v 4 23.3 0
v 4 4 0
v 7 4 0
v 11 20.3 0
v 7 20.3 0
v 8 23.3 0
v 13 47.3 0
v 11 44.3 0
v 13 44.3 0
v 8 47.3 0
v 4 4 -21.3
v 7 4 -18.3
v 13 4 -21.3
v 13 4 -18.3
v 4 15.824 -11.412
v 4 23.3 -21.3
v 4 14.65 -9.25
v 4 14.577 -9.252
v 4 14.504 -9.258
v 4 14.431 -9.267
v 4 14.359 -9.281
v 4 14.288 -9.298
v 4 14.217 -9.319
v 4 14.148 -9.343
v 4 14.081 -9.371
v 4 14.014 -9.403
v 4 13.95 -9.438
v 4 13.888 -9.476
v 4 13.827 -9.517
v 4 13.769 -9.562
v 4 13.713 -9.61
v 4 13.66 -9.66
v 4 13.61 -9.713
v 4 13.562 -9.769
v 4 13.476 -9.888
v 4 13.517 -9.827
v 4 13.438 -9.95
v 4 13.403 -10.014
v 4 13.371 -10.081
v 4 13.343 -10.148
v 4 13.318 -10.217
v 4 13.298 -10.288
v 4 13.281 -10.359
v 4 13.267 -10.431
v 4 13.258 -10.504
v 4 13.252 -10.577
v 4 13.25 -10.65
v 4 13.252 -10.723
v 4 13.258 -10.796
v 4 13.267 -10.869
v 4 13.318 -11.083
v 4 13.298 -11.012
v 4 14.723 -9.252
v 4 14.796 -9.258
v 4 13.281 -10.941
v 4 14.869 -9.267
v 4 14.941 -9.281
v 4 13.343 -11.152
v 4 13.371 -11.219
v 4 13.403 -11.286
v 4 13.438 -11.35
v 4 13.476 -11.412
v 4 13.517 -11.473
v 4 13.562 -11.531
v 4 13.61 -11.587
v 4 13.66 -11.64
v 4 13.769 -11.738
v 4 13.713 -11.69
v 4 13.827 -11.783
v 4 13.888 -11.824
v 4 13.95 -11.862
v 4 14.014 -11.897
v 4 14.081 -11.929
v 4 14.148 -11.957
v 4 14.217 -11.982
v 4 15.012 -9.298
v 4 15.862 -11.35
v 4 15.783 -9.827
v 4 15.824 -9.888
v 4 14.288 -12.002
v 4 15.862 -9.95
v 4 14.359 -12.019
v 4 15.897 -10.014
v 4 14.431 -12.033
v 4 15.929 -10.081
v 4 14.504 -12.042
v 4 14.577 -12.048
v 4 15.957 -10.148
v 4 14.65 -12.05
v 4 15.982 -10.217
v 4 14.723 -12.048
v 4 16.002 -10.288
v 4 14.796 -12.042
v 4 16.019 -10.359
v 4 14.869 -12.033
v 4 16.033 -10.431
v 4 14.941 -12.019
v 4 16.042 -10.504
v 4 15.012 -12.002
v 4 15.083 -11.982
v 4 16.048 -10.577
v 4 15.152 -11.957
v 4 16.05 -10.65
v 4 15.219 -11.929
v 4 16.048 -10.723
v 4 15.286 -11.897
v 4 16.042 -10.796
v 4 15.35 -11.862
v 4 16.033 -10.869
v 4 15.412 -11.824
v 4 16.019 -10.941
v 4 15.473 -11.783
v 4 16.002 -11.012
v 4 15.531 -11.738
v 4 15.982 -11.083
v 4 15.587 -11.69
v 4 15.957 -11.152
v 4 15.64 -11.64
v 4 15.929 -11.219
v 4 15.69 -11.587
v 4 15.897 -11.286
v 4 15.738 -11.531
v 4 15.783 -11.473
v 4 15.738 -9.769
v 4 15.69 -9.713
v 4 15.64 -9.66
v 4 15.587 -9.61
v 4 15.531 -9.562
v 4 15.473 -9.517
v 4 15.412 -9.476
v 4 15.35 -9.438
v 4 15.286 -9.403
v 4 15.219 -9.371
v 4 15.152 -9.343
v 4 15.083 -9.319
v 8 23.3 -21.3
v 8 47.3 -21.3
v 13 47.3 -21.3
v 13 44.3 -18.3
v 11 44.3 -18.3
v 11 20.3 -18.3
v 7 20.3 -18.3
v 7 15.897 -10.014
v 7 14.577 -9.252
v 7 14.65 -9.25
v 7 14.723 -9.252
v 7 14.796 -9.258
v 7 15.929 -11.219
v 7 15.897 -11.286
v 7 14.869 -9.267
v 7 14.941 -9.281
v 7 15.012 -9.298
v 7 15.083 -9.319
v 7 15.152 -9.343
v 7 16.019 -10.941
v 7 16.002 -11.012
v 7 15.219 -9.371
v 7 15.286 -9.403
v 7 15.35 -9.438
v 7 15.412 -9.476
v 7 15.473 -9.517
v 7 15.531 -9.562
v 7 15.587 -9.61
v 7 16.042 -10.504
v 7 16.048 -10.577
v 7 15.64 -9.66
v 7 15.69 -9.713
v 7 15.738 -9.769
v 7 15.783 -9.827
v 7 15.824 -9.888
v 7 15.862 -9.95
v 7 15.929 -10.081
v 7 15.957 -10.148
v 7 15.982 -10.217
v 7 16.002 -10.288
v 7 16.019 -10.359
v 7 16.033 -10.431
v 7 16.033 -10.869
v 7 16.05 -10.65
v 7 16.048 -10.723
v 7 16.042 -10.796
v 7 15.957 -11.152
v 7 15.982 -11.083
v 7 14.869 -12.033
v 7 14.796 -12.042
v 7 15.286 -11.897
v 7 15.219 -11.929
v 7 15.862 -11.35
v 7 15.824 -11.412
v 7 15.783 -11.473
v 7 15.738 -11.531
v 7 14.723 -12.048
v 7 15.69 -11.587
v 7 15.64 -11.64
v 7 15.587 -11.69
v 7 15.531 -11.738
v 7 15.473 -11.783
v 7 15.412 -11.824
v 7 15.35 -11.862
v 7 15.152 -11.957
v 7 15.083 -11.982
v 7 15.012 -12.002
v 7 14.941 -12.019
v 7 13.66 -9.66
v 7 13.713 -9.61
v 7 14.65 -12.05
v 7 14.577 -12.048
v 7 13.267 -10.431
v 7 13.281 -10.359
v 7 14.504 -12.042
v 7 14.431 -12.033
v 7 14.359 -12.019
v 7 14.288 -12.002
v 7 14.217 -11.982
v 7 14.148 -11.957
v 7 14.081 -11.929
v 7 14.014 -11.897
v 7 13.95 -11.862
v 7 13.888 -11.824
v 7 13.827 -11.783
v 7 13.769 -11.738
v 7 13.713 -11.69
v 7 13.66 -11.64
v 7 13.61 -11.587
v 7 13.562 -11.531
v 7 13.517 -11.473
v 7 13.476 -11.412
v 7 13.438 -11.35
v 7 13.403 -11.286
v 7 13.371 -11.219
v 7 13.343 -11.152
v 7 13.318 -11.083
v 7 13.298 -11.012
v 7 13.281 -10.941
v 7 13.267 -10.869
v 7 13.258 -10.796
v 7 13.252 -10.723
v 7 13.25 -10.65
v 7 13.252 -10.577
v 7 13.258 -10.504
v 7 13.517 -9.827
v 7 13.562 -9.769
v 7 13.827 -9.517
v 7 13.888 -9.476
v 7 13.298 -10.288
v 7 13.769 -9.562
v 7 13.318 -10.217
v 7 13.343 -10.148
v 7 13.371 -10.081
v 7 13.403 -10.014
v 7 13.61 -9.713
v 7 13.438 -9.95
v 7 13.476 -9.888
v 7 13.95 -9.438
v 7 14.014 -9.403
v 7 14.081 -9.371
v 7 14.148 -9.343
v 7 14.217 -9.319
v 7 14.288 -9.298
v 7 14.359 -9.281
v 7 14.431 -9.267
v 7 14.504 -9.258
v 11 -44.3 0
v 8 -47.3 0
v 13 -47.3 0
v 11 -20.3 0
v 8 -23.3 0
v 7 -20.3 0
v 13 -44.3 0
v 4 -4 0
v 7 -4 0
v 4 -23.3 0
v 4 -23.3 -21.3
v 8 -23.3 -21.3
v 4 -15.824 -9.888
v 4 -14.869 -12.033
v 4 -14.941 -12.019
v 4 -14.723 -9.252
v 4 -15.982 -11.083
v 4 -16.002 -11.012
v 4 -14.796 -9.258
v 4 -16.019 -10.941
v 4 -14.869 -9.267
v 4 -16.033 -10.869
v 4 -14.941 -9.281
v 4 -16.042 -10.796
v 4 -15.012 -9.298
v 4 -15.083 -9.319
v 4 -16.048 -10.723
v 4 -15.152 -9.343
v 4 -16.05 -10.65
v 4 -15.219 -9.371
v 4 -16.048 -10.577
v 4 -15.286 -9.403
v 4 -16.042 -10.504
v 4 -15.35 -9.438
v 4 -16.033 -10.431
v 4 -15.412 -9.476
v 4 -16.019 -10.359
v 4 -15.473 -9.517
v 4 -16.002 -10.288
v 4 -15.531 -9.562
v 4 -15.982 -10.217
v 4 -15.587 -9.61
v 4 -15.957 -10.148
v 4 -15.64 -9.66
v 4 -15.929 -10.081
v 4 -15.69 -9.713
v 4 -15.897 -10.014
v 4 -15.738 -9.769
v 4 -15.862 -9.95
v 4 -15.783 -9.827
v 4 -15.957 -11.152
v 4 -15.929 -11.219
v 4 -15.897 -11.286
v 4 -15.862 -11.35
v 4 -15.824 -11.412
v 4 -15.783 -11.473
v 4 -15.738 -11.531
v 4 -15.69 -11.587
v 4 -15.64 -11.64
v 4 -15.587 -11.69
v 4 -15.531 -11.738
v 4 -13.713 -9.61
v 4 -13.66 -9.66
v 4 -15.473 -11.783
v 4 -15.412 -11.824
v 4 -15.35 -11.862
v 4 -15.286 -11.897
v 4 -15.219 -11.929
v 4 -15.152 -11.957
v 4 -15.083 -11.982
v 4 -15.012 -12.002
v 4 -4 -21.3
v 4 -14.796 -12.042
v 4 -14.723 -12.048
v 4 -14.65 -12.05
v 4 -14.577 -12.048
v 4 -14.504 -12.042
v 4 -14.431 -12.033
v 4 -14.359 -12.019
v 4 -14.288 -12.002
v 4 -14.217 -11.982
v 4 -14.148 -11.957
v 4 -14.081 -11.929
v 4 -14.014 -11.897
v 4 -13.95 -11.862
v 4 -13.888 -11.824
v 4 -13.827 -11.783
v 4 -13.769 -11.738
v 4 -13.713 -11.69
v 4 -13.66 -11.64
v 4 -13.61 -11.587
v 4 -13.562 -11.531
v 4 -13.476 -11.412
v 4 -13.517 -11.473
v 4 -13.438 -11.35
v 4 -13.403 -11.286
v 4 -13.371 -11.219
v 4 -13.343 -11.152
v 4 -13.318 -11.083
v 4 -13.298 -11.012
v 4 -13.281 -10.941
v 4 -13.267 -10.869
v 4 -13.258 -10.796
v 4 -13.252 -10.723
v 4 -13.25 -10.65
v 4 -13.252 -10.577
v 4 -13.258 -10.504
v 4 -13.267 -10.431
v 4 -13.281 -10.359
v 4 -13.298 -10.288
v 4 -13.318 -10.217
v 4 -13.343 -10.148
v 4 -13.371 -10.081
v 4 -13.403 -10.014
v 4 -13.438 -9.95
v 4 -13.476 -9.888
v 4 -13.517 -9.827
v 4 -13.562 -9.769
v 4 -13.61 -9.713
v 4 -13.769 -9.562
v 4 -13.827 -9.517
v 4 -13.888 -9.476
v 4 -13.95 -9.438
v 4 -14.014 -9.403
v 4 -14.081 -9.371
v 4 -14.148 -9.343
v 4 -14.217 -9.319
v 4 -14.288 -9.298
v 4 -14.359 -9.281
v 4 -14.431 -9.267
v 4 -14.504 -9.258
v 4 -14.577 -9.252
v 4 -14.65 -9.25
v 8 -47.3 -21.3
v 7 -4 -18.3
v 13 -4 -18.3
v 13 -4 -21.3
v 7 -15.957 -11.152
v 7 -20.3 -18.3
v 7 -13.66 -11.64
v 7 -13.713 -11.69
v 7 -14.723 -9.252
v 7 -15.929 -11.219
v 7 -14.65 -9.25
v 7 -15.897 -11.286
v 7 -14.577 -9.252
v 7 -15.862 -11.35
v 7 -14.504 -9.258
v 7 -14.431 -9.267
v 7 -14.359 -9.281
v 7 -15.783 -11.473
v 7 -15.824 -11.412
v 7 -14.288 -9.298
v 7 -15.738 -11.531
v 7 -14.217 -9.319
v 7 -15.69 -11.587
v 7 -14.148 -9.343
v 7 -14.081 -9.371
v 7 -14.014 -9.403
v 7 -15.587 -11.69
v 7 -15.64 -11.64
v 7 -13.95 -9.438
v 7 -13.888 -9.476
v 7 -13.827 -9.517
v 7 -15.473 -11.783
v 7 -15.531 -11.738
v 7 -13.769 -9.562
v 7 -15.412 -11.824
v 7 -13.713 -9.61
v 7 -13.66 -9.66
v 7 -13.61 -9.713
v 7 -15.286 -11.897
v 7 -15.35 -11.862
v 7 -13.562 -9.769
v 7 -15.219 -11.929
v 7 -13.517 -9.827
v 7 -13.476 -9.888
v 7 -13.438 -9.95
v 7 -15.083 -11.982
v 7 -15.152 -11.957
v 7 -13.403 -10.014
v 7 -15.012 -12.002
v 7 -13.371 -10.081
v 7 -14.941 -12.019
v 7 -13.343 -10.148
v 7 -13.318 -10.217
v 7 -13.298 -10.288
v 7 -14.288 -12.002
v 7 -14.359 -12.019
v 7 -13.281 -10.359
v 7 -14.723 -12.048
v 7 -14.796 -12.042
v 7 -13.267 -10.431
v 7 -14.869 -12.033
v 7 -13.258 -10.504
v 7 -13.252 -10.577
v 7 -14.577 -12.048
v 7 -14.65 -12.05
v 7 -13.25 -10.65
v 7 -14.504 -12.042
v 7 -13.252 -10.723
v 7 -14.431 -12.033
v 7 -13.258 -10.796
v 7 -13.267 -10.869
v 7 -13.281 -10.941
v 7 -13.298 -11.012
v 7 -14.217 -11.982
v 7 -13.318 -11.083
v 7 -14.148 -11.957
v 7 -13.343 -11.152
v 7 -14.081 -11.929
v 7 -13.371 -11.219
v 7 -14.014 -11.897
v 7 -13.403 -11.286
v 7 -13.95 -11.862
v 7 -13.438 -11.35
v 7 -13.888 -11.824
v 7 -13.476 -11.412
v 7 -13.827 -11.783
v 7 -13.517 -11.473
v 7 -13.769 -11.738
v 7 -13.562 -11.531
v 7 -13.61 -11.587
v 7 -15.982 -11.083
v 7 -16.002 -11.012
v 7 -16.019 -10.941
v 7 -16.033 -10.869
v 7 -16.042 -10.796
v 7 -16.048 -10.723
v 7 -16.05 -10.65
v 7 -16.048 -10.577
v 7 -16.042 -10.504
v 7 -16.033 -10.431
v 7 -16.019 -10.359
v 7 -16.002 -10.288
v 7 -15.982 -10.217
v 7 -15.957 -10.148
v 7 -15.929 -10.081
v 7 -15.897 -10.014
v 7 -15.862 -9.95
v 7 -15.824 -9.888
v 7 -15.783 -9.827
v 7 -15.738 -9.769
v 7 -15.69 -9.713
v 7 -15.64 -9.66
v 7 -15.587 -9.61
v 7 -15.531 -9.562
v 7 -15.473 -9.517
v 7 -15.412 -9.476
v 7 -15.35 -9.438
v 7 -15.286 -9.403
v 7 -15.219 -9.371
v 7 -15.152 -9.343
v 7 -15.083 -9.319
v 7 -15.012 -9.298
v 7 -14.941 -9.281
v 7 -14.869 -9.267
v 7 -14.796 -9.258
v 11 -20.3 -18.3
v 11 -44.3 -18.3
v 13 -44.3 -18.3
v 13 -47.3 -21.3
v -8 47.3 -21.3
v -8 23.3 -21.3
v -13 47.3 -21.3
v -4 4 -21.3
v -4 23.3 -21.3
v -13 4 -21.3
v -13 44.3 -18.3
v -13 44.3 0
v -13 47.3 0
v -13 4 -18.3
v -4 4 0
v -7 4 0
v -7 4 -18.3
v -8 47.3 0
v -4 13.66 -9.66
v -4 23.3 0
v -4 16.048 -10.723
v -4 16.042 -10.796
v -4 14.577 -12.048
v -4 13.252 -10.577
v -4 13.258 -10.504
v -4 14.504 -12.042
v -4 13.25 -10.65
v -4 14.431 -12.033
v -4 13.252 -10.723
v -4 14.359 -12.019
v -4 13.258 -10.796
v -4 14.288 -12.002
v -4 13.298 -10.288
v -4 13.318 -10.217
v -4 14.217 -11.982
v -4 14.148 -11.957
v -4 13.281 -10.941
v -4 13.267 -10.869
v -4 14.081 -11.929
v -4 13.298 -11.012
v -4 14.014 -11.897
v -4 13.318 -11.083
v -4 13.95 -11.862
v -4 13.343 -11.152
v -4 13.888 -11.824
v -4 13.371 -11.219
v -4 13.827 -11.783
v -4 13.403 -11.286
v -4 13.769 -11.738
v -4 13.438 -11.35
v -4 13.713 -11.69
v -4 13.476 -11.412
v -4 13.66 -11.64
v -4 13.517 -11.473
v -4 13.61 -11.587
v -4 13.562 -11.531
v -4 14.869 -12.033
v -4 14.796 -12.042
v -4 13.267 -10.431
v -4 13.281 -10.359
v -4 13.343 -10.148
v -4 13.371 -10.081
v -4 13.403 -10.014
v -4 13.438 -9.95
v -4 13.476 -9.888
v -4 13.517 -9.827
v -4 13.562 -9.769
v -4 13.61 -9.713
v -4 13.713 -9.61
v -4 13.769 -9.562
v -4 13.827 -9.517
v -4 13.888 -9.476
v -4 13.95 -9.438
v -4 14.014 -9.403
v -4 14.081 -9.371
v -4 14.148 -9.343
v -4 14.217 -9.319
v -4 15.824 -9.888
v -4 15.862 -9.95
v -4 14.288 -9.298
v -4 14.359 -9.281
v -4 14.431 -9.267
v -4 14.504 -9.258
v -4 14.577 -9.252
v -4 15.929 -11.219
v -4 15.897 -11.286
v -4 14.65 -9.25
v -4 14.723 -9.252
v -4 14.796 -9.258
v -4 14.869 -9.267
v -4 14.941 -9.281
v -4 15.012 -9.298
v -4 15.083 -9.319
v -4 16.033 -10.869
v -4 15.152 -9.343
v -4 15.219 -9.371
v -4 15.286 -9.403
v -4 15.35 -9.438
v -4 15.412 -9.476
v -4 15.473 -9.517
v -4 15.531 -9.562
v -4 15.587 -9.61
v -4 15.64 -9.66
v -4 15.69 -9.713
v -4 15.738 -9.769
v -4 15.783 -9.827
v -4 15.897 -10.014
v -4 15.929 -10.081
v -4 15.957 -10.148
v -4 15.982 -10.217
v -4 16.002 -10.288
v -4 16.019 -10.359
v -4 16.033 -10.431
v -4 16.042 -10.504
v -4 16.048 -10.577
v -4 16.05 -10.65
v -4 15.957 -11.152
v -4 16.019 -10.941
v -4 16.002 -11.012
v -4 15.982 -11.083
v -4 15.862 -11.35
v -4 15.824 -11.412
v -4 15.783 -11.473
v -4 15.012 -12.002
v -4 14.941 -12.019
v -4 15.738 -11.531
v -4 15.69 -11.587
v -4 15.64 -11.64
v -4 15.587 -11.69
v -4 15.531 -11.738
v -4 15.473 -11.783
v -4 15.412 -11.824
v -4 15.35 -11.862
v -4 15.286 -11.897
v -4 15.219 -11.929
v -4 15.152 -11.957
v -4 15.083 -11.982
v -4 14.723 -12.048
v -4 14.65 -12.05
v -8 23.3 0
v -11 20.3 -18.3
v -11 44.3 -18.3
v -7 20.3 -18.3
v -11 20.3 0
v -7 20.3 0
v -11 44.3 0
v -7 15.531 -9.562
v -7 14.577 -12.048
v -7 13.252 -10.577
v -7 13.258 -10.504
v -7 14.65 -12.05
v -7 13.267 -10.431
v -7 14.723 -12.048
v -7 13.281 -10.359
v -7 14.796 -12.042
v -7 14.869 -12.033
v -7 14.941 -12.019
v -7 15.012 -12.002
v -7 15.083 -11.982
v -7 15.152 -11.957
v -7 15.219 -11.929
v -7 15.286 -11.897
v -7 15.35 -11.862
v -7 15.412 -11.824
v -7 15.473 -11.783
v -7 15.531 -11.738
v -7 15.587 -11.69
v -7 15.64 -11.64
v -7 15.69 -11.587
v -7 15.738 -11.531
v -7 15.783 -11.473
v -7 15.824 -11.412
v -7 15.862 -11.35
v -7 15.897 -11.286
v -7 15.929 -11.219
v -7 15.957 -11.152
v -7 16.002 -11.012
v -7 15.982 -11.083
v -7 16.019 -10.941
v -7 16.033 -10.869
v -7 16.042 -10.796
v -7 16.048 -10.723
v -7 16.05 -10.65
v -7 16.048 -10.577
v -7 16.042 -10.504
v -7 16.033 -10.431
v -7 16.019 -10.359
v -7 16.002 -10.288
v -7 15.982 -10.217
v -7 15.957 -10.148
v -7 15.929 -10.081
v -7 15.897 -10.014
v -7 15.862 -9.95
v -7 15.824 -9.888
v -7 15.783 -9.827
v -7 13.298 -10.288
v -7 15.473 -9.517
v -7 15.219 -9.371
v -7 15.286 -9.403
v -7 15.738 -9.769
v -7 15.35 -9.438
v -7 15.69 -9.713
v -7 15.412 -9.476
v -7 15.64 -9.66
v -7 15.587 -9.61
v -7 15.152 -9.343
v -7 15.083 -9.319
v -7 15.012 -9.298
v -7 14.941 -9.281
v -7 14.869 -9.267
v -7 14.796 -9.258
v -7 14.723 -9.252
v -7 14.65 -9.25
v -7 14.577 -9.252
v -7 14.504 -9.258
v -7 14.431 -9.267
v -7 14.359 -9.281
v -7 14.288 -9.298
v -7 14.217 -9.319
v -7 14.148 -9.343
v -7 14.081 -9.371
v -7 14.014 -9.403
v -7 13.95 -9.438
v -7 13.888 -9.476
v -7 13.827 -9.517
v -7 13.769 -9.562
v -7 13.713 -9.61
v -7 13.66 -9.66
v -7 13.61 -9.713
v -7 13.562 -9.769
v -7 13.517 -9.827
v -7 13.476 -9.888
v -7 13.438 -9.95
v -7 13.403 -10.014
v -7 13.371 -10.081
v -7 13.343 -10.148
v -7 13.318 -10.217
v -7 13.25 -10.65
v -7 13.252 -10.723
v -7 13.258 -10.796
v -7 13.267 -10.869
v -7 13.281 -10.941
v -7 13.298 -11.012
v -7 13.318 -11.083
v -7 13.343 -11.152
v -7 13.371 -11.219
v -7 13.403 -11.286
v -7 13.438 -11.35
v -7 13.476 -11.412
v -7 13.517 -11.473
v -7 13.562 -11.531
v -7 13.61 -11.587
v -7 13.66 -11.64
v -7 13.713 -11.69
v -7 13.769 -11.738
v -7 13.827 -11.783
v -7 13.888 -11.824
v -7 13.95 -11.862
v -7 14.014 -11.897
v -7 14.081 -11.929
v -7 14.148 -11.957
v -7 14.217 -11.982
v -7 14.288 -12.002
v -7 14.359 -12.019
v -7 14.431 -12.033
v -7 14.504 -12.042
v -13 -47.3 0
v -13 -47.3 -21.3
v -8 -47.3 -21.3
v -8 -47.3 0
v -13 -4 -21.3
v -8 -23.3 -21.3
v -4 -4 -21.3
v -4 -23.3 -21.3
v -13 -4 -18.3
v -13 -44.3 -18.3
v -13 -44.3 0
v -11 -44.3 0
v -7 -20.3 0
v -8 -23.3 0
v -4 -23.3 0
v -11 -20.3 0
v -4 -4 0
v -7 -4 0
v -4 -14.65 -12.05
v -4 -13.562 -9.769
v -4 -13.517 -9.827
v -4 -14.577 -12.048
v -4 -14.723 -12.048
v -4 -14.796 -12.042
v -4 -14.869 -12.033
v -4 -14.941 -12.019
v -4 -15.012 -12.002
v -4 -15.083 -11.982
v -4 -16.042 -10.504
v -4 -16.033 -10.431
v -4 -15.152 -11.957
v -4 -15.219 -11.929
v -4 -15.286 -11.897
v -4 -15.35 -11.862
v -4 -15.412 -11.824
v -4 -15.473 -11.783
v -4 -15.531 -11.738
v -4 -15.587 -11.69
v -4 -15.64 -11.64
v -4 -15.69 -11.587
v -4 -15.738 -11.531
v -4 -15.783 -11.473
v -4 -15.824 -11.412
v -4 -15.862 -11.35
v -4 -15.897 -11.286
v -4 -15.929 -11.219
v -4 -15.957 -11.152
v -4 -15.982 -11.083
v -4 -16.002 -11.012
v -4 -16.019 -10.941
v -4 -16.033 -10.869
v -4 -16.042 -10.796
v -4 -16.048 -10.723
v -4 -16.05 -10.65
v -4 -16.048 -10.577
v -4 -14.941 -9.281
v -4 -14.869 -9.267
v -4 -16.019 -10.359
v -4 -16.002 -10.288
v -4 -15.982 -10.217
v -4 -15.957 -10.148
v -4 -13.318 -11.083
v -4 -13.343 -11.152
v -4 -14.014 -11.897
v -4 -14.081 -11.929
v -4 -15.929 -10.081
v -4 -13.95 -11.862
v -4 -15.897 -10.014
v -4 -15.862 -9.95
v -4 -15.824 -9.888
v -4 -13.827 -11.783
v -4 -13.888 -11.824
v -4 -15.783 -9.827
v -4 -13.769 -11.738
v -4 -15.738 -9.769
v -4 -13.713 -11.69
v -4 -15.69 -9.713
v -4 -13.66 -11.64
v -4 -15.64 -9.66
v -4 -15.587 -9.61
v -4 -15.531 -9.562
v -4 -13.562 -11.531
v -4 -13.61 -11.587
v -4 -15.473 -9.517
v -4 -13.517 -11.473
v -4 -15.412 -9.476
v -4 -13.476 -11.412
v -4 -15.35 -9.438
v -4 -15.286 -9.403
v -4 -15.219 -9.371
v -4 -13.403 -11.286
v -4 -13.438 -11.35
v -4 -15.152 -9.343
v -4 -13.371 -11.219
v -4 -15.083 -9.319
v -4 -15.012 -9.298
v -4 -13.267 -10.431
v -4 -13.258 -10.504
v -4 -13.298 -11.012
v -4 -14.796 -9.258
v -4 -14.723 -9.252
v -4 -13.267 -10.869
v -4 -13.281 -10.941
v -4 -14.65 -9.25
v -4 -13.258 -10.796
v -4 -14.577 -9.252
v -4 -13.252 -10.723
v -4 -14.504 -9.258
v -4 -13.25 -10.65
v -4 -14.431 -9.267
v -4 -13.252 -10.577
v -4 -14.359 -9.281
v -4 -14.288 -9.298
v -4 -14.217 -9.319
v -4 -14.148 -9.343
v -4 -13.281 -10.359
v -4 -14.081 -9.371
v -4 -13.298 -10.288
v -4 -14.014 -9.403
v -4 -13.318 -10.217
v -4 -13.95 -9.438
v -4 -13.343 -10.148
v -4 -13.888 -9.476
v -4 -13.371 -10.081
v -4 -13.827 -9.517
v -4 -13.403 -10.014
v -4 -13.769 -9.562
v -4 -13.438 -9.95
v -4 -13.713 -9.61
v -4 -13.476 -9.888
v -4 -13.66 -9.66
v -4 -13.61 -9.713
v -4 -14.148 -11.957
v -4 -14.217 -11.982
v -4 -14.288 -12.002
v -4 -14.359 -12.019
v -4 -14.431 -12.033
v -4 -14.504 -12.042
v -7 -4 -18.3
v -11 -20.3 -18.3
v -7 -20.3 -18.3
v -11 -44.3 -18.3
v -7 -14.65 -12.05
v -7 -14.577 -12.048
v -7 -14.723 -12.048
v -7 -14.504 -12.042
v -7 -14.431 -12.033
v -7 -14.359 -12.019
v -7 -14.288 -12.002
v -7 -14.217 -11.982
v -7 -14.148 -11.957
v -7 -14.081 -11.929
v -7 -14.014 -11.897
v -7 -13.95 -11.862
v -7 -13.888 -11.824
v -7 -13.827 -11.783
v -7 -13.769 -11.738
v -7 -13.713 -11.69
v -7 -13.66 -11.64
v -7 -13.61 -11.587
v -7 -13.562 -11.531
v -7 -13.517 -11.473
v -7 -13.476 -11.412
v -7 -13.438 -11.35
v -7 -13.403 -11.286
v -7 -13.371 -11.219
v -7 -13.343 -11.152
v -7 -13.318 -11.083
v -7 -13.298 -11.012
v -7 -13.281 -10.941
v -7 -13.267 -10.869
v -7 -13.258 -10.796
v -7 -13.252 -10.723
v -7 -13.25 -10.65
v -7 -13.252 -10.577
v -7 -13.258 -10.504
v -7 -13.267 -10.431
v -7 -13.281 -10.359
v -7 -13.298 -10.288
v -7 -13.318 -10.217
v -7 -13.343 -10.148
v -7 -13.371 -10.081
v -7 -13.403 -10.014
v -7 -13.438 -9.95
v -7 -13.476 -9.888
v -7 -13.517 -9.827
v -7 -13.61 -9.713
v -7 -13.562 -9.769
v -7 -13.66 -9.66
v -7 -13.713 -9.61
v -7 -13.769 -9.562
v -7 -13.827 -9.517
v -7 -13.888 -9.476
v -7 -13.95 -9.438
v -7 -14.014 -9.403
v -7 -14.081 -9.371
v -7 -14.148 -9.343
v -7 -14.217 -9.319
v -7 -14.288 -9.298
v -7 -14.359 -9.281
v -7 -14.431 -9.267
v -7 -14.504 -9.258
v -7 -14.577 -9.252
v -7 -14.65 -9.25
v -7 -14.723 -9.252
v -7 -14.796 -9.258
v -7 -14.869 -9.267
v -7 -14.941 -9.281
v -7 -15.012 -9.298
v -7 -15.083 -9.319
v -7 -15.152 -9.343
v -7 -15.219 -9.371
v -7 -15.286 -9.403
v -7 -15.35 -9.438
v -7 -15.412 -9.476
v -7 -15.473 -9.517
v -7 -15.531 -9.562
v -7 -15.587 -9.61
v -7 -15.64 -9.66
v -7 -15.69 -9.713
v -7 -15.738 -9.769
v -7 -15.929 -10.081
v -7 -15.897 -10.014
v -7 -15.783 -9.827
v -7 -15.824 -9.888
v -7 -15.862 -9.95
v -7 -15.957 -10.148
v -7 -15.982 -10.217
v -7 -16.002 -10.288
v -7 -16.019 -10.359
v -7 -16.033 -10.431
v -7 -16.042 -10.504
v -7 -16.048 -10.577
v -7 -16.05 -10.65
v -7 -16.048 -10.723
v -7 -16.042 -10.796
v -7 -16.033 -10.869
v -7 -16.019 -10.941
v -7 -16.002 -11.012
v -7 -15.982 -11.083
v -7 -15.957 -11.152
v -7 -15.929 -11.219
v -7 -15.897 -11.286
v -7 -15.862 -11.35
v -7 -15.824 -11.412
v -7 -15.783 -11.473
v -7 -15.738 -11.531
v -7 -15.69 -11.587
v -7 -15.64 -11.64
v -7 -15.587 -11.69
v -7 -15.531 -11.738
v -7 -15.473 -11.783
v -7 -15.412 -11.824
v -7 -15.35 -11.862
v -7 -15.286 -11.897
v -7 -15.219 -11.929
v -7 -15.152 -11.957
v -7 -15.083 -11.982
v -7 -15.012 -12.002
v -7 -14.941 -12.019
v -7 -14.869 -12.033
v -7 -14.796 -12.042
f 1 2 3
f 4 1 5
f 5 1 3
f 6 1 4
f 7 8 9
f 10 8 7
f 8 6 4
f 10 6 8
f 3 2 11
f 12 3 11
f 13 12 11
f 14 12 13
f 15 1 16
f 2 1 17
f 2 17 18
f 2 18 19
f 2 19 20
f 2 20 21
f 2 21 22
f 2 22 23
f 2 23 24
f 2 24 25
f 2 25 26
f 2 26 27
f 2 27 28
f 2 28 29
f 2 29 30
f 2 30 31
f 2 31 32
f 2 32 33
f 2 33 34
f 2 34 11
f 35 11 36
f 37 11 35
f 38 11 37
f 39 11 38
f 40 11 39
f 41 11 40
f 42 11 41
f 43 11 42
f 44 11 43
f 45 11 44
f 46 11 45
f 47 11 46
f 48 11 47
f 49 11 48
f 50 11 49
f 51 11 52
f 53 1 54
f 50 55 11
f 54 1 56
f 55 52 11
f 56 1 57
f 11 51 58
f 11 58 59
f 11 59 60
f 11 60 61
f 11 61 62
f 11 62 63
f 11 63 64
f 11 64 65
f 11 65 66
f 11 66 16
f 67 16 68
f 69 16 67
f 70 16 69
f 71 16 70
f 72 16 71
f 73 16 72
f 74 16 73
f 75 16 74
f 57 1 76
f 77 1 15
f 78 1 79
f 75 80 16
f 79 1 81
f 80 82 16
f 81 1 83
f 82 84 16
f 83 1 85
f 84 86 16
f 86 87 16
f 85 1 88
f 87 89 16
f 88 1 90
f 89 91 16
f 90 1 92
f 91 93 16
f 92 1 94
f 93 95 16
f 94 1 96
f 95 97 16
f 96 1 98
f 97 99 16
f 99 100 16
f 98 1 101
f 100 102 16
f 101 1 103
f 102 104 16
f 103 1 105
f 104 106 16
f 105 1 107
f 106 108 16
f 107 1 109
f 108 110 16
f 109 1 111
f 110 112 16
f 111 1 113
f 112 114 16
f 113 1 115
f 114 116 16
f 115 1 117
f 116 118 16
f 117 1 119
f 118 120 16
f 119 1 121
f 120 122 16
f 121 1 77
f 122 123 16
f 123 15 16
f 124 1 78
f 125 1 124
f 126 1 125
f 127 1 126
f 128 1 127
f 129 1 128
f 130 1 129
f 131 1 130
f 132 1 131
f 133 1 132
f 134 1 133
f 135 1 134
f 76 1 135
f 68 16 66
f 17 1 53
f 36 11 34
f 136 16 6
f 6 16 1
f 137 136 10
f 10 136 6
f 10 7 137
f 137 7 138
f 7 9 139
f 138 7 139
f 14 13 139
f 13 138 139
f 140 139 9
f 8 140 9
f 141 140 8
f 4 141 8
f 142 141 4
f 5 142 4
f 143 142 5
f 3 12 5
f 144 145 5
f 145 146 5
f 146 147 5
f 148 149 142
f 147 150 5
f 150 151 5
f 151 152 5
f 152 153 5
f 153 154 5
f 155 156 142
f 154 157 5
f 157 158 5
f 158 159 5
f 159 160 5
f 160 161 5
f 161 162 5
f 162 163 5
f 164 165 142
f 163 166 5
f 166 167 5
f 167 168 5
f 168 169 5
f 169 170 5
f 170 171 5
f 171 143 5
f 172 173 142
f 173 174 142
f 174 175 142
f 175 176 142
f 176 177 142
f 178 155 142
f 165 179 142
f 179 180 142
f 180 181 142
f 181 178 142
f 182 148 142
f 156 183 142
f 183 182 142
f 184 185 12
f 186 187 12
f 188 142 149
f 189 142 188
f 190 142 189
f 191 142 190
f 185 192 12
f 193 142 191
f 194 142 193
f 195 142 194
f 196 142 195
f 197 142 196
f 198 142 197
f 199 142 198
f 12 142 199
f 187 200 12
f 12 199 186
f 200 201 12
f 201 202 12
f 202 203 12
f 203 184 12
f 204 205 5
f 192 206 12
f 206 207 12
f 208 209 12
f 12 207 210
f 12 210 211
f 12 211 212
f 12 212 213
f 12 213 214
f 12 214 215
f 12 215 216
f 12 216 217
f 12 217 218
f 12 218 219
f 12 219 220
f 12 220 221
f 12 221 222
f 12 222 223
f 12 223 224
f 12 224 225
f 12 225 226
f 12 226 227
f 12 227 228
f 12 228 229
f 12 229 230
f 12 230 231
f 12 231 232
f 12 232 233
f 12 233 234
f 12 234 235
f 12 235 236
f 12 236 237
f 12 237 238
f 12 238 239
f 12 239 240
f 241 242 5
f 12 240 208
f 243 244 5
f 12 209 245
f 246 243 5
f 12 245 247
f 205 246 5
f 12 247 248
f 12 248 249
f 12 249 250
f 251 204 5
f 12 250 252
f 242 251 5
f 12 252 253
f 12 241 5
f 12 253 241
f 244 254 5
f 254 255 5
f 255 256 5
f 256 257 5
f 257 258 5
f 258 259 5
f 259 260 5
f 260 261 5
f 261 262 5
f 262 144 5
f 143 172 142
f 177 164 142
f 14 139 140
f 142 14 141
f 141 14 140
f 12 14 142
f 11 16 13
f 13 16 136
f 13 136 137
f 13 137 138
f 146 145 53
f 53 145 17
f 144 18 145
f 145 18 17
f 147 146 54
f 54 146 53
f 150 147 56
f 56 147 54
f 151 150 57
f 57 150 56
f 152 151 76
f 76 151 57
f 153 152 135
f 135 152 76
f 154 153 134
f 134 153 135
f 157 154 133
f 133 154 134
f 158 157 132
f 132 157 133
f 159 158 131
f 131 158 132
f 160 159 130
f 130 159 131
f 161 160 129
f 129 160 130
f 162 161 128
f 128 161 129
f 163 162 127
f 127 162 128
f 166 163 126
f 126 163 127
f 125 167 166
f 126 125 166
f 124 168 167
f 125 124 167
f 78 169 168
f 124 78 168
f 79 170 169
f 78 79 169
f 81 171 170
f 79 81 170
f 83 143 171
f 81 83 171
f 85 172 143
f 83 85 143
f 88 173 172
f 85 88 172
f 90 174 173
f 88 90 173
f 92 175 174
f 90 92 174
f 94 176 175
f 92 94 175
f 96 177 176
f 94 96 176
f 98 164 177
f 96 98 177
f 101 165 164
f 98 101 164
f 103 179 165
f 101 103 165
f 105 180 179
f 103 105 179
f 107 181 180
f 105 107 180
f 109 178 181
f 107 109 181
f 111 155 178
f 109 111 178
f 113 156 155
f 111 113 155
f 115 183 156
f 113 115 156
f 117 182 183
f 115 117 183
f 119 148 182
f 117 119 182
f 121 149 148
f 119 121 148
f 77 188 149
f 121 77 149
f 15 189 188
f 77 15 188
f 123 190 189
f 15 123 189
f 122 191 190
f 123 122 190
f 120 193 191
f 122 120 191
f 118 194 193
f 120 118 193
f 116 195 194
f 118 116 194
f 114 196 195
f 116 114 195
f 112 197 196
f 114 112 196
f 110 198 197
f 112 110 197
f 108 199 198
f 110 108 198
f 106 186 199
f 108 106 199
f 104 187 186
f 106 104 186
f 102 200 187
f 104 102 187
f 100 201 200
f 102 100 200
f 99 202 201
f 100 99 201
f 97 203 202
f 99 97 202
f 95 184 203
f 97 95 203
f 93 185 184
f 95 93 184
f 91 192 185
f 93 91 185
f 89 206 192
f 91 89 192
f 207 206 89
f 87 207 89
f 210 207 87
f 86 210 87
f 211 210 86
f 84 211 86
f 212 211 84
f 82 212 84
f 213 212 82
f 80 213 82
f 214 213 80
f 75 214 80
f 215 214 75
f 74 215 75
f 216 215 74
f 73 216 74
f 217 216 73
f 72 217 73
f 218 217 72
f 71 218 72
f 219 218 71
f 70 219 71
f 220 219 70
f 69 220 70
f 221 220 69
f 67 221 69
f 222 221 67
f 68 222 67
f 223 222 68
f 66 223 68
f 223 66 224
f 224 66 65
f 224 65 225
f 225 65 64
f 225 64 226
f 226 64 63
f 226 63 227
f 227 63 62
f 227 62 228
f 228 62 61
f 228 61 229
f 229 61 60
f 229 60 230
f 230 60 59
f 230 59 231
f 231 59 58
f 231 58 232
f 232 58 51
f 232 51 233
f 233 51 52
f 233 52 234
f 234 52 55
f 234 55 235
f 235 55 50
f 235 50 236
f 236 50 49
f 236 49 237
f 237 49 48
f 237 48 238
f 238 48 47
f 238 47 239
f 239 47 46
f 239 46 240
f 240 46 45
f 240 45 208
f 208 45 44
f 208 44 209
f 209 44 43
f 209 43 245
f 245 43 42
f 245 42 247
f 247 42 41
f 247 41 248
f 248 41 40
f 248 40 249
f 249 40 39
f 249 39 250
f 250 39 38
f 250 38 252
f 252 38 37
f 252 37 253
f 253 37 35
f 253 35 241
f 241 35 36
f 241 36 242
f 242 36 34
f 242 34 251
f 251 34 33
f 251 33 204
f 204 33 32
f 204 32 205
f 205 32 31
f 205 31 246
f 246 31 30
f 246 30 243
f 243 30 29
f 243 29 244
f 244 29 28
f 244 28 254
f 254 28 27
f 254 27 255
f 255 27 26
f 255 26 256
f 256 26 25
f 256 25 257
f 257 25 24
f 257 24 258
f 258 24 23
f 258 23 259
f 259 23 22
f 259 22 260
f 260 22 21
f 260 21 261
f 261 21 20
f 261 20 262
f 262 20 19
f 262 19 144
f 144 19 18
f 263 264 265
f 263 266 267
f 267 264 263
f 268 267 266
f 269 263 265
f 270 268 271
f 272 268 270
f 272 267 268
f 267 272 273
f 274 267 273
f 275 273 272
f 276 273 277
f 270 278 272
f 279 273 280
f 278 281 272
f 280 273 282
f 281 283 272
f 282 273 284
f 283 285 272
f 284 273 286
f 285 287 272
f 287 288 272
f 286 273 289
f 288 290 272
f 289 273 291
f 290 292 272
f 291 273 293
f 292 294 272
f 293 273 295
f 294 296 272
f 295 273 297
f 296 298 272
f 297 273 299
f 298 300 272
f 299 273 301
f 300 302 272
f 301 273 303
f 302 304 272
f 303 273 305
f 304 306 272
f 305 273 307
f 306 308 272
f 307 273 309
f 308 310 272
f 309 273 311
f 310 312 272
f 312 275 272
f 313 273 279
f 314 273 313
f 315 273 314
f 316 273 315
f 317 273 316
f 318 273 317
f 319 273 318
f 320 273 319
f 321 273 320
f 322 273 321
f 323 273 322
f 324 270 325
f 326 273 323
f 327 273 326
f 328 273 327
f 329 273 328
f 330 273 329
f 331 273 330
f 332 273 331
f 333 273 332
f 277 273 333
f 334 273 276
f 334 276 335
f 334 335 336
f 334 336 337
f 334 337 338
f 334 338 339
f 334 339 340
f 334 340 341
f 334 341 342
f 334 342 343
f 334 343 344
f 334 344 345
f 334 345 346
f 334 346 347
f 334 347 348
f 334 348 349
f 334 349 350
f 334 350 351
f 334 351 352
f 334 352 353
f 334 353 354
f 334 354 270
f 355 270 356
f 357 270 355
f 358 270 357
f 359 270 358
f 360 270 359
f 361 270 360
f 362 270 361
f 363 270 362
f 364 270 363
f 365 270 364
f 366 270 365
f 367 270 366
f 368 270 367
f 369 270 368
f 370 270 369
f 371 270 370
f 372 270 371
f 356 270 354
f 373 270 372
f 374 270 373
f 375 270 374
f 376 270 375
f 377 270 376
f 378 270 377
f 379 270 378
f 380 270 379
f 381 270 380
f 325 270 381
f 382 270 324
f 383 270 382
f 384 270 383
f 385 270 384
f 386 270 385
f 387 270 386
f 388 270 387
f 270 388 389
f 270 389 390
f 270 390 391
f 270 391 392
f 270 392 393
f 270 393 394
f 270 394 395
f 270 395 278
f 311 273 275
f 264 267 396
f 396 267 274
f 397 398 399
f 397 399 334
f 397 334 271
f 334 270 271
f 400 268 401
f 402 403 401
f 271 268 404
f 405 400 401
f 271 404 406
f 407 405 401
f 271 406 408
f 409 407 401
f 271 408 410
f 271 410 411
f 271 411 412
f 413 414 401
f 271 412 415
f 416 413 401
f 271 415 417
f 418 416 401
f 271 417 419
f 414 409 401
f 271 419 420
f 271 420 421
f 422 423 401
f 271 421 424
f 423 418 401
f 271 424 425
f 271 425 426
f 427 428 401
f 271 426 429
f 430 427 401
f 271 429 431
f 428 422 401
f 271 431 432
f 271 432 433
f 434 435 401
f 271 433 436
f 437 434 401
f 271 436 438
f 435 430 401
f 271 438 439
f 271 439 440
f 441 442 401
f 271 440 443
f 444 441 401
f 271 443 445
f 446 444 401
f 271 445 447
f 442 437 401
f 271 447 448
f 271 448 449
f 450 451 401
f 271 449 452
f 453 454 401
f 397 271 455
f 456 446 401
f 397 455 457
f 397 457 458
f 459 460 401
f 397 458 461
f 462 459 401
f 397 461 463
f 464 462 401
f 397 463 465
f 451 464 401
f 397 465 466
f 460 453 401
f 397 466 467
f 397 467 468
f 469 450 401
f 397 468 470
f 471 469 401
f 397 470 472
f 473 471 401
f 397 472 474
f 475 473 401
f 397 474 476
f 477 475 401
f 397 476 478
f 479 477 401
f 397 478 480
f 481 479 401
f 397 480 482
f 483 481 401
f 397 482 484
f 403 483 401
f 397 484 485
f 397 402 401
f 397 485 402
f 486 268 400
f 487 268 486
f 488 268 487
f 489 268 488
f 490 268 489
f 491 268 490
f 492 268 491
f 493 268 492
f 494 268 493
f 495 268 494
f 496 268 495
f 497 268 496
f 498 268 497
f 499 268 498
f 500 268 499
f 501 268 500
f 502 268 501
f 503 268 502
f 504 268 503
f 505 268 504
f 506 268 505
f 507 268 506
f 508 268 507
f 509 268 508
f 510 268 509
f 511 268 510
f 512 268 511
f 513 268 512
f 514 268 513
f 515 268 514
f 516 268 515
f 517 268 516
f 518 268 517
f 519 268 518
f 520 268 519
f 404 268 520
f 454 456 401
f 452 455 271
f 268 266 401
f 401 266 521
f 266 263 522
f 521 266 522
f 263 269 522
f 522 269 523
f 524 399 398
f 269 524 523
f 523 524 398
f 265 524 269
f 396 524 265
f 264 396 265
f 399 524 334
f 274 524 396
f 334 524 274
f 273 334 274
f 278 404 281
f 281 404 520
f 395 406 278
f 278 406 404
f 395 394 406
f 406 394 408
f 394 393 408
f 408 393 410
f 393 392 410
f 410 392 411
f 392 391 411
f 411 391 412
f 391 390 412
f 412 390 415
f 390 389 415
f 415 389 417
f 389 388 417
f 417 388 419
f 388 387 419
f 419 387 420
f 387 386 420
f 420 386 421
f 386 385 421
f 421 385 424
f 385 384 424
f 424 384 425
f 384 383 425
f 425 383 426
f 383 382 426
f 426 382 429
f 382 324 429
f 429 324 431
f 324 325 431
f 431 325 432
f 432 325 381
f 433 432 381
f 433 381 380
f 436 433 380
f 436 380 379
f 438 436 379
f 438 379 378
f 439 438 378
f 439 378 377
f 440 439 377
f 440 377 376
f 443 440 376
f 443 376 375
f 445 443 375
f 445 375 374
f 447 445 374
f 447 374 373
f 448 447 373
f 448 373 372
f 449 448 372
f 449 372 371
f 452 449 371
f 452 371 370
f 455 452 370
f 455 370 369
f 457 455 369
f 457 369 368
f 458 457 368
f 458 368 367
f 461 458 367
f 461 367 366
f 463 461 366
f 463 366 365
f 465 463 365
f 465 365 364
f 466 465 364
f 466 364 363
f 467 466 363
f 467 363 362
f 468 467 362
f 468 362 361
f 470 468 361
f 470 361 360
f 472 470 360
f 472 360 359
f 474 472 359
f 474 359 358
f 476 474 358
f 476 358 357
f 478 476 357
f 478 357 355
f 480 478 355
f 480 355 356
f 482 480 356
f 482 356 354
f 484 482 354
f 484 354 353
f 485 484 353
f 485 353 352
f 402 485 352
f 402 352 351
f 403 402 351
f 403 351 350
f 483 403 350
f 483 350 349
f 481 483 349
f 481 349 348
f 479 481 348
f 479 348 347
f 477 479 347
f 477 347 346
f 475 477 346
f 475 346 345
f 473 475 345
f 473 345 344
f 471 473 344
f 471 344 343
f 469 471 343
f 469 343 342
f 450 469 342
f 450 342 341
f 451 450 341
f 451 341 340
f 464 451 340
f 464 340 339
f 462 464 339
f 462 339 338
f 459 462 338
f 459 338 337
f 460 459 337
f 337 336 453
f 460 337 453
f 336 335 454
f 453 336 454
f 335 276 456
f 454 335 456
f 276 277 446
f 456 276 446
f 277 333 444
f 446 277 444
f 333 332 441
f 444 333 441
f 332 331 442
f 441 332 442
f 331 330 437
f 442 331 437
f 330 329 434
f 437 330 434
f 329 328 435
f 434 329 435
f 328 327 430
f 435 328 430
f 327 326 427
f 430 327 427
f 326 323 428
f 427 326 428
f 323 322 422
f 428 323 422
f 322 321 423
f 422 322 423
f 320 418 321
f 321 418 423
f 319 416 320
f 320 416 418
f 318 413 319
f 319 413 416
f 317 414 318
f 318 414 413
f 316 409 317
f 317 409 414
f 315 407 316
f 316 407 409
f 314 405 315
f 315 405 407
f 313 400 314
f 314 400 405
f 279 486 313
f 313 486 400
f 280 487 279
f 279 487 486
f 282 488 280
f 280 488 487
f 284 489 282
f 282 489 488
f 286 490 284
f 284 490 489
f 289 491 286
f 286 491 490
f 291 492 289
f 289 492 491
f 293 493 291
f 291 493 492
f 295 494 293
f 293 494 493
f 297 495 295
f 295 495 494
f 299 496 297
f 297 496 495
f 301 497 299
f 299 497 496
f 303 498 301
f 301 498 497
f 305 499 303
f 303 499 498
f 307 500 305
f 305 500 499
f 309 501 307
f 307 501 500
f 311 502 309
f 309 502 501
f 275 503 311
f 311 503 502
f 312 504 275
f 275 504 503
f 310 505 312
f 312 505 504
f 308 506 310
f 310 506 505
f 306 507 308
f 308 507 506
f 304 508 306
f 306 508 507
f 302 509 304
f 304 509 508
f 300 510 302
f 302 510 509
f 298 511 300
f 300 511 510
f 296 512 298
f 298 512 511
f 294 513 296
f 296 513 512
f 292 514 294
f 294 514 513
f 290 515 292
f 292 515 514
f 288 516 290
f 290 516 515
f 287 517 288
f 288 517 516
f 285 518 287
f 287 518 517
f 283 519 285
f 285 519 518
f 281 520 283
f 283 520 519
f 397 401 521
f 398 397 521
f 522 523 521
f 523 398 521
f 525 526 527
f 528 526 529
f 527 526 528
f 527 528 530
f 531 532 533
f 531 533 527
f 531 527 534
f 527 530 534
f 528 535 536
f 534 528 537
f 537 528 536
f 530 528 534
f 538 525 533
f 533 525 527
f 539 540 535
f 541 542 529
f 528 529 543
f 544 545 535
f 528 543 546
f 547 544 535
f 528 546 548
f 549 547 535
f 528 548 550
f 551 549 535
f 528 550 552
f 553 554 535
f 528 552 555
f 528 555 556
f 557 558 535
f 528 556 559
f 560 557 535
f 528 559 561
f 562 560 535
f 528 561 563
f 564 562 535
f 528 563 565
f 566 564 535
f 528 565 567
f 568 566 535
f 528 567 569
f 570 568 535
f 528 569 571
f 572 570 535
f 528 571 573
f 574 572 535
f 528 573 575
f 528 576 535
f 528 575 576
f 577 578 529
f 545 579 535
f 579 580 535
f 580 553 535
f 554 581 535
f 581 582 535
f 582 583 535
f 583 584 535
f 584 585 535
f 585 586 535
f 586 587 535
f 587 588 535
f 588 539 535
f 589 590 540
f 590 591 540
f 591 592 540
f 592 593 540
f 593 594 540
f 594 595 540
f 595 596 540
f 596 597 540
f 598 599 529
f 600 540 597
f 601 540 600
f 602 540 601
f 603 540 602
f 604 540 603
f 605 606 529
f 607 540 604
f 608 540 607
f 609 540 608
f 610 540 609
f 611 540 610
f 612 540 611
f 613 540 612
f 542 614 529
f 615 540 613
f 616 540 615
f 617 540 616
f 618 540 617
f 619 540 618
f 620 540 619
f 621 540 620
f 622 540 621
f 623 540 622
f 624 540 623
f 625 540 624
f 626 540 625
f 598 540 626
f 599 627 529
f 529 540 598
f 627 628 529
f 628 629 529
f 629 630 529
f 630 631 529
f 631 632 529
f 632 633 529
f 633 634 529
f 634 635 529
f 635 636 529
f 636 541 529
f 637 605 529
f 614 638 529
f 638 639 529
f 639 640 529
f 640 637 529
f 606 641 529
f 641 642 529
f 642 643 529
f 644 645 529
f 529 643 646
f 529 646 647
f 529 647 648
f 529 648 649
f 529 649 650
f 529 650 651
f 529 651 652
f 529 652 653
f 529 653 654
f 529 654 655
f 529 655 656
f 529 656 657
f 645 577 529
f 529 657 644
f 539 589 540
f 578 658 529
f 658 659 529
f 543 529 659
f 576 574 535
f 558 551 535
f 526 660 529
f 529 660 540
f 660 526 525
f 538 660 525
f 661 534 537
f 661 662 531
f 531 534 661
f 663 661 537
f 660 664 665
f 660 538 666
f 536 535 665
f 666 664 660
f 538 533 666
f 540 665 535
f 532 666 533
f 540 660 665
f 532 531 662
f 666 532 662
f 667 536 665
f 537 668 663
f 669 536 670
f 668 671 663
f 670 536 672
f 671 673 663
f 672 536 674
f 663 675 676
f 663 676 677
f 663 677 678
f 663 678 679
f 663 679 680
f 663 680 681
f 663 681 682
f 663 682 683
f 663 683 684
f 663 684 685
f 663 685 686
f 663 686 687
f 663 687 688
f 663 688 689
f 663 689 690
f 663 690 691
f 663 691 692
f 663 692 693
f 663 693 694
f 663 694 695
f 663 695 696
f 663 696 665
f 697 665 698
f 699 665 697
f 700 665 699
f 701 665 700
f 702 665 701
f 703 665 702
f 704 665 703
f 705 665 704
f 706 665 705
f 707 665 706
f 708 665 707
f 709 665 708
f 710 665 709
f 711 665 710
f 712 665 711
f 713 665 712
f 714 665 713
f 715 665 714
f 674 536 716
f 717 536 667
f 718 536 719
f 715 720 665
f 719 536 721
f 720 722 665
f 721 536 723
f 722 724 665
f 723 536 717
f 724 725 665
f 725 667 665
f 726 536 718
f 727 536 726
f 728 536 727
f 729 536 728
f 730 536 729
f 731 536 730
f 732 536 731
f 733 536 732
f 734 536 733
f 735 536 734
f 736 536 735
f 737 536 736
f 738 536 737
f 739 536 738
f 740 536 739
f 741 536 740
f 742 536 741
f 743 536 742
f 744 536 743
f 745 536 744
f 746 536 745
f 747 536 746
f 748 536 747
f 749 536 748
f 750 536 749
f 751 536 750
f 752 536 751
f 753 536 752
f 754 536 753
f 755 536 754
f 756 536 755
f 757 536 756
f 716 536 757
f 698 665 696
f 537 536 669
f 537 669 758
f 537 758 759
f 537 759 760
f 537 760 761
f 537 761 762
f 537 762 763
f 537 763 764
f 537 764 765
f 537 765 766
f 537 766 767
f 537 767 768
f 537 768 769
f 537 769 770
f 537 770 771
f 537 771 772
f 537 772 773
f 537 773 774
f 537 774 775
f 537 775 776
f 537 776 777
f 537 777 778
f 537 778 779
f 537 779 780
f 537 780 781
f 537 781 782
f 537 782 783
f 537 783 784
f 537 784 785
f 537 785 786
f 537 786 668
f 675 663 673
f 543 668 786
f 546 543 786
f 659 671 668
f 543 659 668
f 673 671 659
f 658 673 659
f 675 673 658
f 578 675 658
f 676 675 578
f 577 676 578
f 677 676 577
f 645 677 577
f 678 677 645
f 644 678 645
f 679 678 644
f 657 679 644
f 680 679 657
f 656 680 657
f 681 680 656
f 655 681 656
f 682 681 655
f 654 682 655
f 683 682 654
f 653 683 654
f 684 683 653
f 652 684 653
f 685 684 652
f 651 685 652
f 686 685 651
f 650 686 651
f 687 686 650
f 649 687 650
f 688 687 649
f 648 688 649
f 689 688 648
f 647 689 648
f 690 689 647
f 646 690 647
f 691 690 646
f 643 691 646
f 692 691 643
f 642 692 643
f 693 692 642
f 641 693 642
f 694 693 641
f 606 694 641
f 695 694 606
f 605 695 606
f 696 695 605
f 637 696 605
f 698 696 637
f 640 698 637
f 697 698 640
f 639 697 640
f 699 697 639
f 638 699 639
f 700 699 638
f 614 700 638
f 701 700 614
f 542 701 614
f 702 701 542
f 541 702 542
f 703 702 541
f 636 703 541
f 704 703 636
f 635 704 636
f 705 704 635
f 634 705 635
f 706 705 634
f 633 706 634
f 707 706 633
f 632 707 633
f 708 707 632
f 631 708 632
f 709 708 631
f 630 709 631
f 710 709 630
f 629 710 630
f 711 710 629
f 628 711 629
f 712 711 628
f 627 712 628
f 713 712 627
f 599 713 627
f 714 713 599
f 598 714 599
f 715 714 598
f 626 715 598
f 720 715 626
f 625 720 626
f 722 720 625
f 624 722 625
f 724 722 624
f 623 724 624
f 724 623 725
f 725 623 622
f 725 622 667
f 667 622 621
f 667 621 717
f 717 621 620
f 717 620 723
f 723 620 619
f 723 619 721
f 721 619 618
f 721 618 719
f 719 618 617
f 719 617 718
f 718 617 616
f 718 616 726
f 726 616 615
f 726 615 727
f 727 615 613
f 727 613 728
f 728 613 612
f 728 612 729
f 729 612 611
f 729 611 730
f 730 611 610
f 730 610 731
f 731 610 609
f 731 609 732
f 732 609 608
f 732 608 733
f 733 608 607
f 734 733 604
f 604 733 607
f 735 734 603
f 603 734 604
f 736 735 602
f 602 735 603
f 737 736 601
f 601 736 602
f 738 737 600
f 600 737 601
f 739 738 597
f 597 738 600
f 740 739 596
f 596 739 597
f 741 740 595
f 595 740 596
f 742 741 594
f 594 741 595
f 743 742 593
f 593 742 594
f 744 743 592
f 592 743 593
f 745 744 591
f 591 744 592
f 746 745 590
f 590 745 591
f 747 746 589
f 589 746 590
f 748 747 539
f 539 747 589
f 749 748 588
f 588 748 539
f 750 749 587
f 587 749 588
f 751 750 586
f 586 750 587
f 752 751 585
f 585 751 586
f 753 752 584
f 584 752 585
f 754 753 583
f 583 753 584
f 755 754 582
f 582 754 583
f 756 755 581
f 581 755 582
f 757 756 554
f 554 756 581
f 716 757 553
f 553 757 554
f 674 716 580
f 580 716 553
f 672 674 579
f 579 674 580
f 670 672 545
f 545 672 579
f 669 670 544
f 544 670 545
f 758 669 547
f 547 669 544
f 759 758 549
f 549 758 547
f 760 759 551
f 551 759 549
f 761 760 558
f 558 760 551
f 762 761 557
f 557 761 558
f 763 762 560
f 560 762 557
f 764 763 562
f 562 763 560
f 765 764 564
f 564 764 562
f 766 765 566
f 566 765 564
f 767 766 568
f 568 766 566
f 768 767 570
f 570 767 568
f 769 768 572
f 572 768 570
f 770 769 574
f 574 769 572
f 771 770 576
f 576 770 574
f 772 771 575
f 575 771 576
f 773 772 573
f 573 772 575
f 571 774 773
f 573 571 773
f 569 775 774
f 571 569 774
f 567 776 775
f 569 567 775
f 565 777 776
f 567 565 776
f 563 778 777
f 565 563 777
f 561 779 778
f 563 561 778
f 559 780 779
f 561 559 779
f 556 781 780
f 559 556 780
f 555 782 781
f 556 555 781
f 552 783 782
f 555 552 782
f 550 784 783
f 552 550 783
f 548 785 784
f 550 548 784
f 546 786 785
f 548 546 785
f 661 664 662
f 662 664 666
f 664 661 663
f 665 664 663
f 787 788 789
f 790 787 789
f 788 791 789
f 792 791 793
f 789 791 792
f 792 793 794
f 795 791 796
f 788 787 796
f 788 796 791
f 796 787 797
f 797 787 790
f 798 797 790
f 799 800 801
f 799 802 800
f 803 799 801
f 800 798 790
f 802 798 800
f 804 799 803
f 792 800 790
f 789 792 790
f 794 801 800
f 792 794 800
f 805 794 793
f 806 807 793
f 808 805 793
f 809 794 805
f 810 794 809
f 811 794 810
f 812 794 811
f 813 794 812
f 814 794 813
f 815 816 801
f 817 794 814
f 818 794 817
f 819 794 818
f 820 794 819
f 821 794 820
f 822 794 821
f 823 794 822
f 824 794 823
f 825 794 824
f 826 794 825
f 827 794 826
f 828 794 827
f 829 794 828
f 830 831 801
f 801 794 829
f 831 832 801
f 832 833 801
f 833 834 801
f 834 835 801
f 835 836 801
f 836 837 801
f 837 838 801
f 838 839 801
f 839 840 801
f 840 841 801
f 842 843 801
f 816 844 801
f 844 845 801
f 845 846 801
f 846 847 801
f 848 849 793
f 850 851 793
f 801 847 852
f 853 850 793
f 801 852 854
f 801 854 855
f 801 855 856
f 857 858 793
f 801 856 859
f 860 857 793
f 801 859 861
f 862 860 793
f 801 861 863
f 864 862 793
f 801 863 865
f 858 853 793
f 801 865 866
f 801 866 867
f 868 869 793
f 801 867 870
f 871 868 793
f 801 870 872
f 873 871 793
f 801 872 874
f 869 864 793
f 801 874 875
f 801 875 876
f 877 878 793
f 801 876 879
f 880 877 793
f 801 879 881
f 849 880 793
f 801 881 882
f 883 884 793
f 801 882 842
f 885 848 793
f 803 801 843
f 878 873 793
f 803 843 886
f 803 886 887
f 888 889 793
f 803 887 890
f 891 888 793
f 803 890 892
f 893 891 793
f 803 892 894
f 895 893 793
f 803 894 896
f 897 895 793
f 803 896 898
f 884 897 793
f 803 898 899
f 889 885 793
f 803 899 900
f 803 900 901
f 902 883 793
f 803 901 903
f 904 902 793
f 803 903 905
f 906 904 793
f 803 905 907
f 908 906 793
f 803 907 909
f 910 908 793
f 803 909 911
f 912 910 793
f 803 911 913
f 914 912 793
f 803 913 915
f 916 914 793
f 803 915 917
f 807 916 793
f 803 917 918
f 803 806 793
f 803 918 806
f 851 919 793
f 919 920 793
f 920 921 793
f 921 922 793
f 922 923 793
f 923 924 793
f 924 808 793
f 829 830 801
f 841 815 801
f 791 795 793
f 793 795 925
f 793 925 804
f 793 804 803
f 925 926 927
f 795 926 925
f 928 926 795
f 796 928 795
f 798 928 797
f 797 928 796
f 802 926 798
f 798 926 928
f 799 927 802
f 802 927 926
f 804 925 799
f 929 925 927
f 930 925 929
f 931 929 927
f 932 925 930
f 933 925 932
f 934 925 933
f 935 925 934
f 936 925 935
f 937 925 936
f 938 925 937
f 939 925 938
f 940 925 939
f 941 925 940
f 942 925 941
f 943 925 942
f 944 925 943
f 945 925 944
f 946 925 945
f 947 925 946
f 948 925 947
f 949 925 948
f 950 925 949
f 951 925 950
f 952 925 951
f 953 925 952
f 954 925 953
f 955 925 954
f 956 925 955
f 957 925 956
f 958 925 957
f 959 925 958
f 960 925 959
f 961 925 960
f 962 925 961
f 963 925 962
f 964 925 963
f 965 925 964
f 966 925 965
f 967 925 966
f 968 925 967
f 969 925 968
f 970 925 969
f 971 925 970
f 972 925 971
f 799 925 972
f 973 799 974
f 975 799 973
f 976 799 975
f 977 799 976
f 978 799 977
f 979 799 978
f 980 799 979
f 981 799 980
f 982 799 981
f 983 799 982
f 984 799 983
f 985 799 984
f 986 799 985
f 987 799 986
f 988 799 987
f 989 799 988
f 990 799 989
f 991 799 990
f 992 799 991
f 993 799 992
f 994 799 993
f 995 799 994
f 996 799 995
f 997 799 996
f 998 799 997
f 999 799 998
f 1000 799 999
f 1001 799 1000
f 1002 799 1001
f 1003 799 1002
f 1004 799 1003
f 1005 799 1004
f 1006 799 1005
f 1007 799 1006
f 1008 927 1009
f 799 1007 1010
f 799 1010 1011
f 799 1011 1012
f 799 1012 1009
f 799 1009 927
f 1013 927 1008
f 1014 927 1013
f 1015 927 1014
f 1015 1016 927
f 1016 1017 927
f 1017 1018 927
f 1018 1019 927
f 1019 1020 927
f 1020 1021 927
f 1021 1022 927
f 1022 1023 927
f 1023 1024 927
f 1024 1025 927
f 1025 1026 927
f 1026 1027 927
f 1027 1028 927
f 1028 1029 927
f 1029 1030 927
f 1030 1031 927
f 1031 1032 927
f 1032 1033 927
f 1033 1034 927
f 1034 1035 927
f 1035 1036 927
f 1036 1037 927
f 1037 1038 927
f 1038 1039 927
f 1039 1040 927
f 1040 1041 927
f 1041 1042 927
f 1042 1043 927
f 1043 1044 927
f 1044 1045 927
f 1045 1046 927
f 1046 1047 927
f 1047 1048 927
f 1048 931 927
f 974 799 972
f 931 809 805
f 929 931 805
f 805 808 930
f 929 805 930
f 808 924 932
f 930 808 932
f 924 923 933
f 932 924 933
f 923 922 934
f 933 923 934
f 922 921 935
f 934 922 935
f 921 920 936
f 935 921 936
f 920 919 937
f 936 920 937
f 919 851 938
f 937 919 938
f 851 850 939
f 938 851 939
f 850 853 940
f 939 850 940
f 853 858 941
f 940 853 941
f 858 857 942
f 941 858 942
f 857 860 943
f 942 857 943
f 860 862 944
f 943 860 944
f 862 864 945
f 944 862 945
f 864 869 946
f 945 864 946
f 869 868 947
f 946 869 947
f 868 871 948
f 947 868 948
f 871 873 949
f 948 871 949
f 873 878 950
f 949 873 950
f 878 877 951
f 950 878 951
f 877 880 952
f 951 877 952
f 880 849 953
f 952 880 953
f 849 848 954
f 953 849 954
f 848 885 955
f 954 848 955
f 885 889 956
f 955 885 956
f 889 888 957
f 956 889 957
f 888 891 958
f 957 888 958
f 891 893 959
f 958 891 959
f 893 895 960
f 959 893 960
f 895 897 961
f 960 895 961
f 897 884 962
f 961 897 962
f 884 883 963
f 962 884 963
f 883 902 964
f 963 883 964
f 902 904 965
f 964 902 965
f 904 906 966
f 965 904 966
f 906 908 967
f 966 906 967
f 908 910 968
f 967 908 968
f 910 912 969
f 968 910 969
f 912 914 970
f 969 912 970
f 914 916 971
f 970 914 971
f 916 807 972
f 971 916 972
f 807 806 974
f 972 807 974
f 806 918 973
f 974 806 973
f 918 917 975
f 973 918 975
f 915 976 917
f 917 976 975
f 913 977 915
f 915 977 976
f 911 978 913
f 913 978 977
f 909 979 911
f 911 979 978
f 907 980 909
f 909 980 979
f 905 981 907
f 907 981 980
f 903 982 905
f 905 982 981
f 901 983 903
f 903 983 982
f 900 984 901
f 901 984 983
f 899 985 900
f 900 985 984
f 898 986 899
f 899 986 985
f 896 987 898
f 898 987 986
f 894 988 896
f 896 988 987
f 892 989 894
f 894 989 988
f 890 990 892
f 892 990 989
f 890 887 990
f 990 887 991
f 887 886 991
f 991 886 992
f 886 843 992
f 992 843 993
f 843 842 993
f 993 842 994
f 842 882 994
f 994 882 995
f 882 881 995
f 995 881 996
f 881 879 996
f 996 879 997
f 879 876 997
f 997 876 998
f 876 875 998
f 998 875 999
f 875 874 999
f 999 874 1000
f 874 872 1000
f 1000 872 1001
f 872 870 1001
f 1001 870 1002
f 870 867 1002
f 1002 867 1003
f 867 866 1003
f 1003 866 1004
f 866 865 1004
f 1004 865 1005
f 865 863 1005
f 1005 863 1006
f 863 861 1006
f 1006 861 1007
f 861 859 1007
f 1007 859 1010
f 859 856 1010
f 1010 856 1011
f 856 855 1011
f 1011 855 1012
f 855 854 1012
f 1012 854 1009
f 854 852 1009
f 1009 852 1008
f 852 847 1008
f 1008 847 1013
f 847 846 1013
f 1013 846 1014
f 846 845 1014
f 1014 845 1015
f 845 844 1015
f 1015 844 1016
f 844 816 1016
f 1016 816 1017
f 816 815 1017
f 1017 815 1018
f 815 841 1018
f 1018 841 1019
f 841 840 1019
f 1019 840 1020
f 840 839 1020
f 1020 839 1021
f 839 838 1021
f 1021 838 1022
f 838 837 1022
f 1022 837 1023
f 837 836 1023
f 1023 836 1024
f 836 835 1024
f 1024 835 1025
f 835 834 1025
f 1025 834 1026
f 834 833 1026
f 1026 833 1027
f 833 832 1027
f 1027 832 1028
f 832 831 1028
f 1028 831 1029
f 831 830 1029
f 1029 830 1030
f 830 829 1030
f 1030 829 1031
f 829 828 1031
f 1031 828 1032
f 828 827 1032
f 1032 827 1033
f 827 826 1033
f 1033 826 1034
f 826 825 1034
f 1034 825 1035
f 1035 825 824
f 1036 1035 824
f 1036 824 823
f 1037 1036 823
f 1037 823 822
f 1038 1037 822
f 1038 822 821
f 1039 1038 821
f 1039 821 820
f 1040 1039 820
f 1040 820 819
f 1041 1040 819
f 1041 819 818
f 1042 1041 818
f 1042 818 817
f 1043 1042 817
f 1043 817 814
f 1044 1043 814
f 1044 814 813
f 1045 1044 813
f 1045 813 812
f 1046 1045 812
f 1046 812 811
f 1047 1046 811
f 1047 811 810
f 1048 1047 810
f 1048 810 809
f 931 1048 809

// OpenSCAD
$fn=120;
glass_x=224;
glass_y=268;

bolt_x=208.7;
bolt_y=bolt_x;

hbp_x=220;
hbp_y=hbp_x;
hbp_z=4;

wall=3;

base_x=225;
base_y=base_x;
base_lip=2;

lip=2;
pad=0.1;
padd=pad*2;

edge_to_hbp=(glass_y-hbp_y)/2;
edge_to_bolt=(glass_y-bolt_y)/2;
side_to_bolt=(glass_x-bolt_x)/2;

block_y=edge_to_bolt+side_to_bolt+wall*2;
block_z=wall+hbp_z+lip;
block_x=side_to_bolt*2+wall*2;

bolt_d=2.8;
bolt_r=bolt_d/2;


module glass() {
    difference() {
        color("cyan")
        translate([glass_x/2-hbp_x/2,glass_y/2-hbp_y/2,-lip])
        cube([hbp_x,hbp_y,lip-pad]);
        #cube([glass_x,glass_y,lip]);
    }
}

module block() {
    translate([0,4,4])
    difference() {
        cube([block_x,block_y,block_z]);
        translate([-pad,-pad,block_z-lip])
        cube([block_x-wall+pad,block_y-wall+pad,lip+pad]);
        translate([-pad,-pad,wall])
        cube([block_x-wall+pad,block_y-edge_to_hbp-wall+pad,hbp_z+pad]);
        translate([-pad,block_y-edge_to_hbp,-pad])
        cube([block_x+padd,edge_to_hbp+pad,block_z-lip-wall+pad]);
        translate([block_x-wall-side_to_bolt,block_y-wall-edge_to_bolt,-pad])
        cylinder(r=bolt_r,h=wall+padd);
    }
}

rotate([0,90,0])
block();

mirror([0,1,0])
rotate([0,90,0])
block();


mirror([1,0,0]) {
    rotate([0,90,0])
    block();

    mirror([0,1,0])
    rotate([0,90,0])
    block();
}
//translate([-glass_x+block_x-wall,-glass_y+block_y-wall,block_z-lip]) glass();
